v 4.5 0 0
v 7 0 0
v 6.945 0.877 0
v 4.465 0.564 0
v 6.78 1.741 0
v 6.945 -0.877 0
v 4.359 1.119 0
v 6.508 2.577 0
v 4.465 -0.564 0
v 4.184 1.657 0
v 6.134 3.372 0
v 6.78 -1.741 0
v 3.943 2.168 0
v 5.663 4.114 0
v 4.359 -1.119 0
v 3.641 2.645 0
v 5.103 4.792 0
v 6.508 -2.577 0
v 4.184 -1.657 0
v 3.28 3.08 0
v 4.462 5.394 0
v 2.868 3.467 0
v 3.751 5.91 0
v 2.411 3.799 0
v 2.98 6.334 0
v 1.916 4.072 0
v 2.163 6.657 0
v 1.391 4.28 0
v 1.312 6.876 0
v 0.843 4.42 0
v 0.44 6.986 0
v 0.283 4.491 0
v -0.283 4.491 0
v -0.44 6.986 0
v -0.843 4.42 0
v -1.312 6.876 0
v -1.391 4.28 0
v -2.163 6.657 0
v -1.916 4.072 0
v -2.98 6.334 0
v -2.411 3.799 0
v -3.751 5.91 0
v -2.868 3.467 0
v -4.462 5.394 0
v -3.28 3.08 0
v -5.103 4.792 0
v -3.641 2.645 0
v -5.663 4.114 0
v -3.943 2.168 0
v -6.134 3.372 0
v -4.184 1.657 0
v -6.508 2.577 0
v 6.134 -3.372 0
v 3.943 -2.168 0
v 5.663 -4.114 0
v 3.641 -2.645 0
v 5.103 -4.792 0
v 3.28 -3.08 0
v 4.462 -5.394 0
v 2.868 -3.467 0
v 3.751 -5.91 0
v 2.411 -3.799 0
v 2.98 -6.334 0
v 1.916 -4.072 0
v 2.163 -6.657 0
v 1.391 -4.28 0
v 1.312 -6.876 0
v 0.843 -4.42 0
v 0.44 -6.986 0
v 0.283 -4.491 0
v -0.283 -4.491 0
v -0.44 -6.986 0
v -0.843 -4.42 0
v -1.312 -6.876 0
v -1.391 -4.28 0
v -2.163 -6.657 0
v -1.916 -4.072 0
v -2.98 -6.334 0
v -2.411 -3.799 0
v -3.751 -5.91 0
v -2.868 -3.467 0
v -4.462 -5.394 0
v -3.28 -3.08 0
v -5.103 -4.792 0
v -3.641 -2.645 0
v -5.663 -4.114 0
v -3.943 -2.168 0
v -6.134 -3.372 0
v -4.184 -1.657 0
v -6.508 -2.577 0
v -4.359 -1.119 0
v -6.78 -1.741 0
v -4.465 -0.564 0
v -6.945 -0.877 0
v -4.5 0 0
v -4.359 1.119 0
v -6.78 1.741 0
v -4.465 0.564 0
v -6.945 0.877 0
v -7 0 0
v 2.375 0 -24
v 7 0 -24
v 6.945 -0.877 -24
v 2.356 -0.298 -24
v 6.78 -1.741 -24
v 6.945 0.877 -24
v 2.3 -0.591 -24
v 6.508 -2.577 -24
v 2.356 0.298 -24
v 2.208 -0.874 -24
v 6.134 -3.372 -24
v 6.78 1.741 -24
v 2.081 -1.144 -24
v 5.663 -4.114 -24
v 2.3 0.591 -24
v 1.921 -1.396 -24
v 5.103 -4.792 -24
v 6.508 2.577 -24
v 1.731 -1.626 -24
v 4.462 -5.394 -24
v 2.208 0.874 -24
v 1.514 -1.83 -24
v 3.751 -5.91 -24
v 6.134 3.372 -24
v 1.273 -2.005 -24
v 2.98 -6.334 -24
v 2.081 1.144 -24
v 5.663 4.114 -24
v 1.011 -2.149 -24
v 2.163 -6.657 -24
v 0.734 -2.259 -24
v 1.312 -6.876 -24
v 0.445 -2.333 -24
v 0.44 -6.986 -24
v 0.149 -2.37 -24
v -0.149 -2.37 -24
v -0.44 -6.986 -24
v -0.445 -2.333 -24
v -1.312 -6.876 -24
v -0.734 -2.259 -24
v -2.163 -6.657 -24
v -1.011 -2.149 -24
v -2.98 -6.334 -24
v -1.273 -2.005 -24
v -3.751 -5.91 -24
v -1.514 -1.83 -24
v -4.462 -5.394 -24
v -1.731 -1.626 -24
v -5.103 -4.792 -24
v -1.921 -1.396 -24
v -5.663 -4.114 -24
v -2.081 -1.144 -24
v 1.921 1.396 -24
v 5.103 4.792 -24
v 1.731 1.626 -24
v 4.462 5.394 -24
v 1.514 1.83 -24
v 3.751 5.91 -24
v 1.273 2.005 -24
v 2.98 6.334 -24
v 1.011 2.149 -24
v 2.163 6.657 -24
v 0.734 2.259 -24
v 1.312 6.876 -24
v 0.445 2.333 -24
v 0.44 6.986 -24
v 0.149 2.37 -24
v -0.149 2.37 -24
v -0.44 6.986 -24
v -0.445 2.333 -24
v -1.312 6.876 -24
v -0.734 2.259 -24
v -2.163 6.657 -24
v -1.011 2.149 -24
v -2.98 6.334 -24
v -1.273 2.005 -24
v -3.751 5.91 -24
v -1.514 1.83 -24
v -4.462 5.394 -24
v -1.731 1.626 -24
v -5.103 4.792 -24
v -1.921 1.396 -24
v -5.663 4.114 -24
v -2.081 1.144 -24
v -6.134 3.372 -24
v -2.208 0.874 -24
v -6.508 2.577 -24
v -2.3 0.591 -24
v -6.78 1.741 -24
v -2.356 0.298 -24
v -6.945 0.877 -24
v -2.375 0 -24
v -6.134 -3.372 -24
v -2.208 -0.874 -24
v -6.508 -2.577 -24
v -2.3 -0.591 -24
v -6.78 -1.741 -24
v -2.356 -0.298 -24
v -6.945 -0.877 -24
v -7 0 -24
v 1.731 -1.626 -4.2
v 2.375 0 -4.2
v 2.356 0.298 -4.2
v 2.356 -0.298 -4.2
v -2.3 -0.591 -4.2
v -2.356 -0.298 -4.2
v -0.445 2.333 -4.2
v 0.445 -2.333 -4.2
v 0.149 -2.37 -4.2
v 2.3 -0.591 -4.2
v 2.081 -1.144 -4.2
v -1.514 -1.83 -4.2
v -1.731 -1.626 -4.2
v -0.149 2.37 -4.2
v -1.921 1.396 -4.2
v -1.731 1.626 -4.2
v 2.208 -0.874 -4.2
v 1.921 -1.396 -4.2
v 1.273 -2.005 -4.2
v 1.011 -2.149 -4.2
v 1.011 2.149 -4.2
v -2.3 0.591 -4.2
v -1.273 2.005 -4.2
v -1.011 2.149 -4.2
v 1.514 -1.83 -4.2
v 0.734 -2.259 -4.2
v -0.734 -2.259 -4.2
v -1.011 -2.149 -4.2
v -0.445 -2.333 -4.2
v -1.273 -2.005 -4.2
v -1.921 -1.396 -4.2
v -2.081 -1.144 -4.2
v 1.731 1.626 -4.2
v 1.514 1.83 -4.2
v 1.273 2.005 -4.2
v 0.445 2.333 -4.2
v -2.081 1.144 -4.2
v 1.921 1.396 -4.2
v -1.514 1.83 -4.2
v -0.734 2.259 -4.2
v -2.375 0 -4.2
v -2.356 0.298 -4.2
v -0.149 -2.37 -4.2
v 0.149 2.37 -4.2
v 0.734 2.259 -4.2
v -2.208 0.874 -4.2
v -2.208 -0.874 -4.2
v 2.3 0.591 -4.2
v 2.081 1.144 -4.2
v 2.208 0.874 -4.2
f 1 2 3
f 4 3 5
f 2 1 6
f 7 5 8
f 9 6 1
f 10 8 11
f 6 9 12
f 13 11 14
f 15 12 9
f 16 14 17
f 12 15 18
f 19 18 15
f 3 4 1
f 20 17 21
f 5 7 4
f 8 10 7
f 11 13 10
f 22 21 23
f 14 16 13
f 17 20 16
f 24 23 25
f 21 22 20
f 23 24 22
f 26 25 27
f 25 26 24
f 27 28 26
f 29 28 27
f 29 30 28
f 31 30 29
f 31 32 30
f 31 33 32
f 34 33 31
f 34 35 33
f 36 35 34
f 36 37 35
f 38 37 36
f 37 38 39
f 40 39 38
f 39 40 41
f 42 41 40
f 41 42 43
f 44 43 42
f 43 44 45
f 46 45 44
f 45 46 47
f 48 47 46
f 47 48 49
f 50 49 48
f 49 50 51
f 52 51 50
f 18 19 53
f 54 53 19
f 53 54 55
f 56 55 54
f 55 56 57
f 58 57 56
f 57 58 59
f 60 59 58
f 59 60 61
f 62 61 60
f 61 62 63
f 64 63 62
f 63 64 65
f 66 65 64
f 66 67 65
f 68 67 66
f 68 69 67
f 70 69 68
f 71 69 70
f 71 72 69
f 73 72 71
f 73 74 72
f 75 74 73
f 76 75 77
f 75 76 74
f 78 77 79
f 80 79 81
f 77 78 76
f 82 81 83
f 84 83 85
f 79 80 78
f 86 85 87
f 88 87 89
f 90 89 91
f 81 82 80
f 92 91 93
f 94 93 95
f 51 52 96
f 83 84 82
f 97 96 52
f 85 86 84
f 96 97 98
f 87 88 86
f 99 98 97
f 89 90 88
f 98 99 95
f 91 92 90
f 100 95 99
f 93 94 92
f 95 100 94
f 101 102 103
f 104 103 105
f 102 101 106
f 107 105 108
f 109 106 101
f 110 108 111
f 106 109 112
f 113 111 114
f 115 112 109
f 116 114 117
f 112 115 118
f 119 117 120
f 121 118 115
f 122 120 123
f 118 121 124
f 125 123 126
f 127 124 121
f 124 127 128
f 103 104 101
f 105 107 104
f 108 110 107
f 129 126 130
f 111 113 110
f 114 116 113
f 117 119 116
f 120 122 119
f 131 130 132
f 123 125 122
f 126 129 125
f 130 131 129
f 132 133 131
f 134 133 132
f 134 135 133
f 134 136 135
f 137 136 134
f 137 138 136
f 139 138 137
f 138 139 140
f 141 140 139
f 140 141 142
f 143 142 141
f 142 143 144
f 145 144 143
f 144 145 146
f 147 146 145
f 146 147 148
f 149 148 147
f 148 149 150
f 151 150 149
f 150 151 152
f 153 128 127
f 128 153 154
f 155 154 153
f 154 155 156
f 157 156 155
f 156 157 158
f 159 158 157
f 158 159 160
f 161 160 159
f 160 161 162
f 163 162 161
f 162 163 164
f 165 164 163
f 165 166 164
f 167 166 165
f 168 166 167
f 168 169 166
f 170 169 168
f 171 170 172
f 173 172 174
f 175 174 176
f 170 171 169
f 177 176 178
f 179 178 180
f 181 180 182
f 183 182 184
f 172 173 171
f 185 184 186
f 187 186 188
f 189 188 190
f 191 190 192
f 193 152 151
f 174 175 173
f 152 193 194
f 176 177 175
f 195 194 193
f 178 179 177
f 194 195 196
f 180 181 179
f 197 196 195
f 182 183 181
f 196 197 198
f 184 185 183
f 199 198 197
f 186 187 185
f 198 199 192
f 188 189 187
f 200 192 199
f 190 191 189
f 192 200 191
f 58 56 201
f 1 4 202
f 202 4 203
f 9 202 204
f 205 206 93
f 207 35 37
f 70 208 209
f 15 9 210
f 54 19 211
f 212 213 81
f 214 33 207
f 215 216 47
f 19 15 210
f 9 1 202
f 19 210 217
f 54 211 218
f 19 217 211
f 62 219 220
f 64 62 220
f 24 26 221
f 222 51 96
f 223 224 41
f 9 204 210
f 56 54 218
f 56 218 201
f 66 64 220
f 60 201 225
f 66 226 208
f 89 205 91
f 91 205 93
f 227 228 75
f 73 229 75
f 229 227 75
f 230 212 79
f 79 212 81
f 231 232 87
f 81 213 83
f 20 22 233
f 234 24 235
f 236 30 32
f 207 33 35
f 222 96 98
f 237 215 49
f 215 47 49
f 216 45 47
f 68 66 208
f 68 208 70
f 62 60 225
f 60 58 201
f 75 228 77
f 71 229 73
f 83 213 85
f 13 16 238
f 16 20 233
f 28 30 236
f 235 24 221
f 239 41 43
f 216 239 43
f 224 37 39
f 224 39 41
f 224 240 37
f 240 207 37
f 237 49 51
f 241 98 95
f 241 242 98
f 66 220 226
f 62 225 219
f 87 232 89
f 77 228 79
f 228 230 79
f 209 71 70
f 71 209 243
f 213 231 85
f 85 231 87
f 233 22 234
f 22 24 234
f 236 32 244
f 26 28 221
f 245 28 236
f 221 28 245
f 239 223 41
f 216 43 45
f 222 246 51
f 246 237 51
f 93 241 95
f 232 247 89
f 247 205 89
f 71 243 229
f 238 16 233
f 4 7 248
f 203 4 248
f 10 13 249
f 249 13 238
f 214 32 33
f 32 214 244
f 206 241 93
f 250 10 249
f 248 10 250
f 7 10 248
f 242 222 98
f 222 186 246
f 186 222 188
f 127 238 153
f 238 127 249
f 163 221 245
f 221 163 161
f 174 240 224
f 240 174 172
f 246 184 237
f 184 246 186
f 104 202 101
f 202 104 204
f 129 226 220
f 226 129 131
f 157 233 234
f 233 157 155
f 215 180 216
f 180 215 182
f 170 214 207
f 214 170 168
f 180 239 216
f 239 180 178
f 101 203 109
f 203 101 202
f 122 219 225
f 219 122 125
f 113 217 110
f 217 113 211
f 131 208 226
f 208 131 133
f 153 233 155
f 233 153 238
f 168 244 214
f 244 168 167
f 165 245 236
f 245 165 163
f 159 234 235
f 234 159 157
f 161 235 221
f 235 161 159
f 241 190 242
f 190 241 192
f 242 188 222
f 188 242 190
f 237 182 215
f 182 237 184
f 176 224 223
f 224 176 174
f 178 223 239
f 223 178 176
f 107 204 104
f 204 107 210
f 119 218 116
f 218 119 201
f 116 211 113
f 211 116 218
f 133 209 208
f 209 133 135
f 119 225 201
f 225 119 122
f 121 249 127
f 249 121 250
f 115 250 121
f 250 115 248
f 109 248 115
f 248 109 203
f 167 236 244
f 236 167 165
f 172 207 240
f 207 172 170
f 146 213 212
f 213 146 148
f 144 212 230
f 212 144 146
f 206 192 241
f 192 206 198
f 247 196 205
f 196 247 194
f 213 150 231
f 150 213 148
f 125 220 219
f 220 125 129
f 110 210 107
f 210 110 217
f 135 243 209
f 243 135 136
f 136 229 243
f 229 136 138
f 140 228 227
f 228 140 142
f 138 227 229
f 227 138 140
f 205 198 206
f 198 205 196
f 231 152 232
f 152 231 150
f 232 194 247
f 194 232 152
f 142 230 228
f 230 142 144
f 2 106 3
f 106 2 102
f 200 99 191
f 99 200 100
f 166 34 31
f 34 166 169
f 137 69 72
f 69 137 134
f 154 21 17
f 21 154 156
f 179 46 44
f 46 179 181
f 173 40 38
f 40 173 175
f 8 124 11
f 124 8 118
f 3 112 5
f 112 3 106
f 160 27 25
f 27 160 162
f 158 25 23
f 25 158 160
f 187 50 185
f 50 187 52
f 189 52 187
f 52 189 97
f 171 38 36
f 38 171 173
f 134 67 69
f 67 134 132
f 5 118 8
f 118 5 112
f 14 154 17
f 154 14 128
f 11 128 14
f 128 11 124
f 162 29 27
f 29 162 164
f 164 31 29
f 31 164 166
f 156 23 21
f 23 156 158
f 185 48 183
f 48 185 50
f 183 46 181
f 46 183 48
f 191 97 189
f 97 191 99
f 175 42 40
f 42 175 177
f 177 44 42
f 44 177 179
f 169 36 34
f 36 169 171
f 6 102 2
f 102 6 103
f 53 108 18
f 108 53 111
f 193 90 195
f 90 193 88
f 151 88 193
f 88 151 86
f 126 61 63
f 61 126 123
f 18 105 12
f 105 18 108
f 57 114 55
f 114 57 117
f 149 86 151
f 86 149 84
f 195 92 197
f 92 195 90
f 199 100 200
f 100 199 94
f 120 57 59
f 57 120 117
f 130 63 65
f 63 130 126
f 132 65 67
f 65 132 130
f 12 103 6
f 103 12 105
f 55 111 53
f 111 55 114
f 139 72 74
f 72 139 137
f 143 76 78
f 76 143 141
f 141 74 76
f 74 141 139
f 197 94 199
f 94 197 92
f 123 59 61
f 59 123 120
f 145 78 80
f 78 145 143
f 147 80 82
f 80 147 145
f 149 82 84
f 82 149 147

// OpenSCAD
$fn = 50;


difference() {
	union() {
		translate(v = [0, 0, -24.0000000000]) {
			cylinder(h = 24, r = 7.0000000000);
		}
	}
	union() {
		translate(v = [0, 0, 0]) {
			rotate(a = [0, 0, 0]) {
				difference() {
					union() {
						#translate(v = [0, 0, -24.0000000000]) {
							cylinder(h = 24, r = 2.2500000000);
						}
						#translate(v = [0, 0, -4.2000000000]) {
							cylinder(h = 4.2000000000, r = 7.0000000000, r1 = 2.3750000000, r2 = 4.5000000000);
						}
						#translate(v = [0, 0, -24.0000000000]) {
							cylinder(h = 24, r = 2.3750000000);
						}
						#translate(v = [0, 0, -24.0000000000]) {
							cylinder(h = 24, r = 2.2500000000);
						}
					}
					union();
				}
			}
		}
	}
}
